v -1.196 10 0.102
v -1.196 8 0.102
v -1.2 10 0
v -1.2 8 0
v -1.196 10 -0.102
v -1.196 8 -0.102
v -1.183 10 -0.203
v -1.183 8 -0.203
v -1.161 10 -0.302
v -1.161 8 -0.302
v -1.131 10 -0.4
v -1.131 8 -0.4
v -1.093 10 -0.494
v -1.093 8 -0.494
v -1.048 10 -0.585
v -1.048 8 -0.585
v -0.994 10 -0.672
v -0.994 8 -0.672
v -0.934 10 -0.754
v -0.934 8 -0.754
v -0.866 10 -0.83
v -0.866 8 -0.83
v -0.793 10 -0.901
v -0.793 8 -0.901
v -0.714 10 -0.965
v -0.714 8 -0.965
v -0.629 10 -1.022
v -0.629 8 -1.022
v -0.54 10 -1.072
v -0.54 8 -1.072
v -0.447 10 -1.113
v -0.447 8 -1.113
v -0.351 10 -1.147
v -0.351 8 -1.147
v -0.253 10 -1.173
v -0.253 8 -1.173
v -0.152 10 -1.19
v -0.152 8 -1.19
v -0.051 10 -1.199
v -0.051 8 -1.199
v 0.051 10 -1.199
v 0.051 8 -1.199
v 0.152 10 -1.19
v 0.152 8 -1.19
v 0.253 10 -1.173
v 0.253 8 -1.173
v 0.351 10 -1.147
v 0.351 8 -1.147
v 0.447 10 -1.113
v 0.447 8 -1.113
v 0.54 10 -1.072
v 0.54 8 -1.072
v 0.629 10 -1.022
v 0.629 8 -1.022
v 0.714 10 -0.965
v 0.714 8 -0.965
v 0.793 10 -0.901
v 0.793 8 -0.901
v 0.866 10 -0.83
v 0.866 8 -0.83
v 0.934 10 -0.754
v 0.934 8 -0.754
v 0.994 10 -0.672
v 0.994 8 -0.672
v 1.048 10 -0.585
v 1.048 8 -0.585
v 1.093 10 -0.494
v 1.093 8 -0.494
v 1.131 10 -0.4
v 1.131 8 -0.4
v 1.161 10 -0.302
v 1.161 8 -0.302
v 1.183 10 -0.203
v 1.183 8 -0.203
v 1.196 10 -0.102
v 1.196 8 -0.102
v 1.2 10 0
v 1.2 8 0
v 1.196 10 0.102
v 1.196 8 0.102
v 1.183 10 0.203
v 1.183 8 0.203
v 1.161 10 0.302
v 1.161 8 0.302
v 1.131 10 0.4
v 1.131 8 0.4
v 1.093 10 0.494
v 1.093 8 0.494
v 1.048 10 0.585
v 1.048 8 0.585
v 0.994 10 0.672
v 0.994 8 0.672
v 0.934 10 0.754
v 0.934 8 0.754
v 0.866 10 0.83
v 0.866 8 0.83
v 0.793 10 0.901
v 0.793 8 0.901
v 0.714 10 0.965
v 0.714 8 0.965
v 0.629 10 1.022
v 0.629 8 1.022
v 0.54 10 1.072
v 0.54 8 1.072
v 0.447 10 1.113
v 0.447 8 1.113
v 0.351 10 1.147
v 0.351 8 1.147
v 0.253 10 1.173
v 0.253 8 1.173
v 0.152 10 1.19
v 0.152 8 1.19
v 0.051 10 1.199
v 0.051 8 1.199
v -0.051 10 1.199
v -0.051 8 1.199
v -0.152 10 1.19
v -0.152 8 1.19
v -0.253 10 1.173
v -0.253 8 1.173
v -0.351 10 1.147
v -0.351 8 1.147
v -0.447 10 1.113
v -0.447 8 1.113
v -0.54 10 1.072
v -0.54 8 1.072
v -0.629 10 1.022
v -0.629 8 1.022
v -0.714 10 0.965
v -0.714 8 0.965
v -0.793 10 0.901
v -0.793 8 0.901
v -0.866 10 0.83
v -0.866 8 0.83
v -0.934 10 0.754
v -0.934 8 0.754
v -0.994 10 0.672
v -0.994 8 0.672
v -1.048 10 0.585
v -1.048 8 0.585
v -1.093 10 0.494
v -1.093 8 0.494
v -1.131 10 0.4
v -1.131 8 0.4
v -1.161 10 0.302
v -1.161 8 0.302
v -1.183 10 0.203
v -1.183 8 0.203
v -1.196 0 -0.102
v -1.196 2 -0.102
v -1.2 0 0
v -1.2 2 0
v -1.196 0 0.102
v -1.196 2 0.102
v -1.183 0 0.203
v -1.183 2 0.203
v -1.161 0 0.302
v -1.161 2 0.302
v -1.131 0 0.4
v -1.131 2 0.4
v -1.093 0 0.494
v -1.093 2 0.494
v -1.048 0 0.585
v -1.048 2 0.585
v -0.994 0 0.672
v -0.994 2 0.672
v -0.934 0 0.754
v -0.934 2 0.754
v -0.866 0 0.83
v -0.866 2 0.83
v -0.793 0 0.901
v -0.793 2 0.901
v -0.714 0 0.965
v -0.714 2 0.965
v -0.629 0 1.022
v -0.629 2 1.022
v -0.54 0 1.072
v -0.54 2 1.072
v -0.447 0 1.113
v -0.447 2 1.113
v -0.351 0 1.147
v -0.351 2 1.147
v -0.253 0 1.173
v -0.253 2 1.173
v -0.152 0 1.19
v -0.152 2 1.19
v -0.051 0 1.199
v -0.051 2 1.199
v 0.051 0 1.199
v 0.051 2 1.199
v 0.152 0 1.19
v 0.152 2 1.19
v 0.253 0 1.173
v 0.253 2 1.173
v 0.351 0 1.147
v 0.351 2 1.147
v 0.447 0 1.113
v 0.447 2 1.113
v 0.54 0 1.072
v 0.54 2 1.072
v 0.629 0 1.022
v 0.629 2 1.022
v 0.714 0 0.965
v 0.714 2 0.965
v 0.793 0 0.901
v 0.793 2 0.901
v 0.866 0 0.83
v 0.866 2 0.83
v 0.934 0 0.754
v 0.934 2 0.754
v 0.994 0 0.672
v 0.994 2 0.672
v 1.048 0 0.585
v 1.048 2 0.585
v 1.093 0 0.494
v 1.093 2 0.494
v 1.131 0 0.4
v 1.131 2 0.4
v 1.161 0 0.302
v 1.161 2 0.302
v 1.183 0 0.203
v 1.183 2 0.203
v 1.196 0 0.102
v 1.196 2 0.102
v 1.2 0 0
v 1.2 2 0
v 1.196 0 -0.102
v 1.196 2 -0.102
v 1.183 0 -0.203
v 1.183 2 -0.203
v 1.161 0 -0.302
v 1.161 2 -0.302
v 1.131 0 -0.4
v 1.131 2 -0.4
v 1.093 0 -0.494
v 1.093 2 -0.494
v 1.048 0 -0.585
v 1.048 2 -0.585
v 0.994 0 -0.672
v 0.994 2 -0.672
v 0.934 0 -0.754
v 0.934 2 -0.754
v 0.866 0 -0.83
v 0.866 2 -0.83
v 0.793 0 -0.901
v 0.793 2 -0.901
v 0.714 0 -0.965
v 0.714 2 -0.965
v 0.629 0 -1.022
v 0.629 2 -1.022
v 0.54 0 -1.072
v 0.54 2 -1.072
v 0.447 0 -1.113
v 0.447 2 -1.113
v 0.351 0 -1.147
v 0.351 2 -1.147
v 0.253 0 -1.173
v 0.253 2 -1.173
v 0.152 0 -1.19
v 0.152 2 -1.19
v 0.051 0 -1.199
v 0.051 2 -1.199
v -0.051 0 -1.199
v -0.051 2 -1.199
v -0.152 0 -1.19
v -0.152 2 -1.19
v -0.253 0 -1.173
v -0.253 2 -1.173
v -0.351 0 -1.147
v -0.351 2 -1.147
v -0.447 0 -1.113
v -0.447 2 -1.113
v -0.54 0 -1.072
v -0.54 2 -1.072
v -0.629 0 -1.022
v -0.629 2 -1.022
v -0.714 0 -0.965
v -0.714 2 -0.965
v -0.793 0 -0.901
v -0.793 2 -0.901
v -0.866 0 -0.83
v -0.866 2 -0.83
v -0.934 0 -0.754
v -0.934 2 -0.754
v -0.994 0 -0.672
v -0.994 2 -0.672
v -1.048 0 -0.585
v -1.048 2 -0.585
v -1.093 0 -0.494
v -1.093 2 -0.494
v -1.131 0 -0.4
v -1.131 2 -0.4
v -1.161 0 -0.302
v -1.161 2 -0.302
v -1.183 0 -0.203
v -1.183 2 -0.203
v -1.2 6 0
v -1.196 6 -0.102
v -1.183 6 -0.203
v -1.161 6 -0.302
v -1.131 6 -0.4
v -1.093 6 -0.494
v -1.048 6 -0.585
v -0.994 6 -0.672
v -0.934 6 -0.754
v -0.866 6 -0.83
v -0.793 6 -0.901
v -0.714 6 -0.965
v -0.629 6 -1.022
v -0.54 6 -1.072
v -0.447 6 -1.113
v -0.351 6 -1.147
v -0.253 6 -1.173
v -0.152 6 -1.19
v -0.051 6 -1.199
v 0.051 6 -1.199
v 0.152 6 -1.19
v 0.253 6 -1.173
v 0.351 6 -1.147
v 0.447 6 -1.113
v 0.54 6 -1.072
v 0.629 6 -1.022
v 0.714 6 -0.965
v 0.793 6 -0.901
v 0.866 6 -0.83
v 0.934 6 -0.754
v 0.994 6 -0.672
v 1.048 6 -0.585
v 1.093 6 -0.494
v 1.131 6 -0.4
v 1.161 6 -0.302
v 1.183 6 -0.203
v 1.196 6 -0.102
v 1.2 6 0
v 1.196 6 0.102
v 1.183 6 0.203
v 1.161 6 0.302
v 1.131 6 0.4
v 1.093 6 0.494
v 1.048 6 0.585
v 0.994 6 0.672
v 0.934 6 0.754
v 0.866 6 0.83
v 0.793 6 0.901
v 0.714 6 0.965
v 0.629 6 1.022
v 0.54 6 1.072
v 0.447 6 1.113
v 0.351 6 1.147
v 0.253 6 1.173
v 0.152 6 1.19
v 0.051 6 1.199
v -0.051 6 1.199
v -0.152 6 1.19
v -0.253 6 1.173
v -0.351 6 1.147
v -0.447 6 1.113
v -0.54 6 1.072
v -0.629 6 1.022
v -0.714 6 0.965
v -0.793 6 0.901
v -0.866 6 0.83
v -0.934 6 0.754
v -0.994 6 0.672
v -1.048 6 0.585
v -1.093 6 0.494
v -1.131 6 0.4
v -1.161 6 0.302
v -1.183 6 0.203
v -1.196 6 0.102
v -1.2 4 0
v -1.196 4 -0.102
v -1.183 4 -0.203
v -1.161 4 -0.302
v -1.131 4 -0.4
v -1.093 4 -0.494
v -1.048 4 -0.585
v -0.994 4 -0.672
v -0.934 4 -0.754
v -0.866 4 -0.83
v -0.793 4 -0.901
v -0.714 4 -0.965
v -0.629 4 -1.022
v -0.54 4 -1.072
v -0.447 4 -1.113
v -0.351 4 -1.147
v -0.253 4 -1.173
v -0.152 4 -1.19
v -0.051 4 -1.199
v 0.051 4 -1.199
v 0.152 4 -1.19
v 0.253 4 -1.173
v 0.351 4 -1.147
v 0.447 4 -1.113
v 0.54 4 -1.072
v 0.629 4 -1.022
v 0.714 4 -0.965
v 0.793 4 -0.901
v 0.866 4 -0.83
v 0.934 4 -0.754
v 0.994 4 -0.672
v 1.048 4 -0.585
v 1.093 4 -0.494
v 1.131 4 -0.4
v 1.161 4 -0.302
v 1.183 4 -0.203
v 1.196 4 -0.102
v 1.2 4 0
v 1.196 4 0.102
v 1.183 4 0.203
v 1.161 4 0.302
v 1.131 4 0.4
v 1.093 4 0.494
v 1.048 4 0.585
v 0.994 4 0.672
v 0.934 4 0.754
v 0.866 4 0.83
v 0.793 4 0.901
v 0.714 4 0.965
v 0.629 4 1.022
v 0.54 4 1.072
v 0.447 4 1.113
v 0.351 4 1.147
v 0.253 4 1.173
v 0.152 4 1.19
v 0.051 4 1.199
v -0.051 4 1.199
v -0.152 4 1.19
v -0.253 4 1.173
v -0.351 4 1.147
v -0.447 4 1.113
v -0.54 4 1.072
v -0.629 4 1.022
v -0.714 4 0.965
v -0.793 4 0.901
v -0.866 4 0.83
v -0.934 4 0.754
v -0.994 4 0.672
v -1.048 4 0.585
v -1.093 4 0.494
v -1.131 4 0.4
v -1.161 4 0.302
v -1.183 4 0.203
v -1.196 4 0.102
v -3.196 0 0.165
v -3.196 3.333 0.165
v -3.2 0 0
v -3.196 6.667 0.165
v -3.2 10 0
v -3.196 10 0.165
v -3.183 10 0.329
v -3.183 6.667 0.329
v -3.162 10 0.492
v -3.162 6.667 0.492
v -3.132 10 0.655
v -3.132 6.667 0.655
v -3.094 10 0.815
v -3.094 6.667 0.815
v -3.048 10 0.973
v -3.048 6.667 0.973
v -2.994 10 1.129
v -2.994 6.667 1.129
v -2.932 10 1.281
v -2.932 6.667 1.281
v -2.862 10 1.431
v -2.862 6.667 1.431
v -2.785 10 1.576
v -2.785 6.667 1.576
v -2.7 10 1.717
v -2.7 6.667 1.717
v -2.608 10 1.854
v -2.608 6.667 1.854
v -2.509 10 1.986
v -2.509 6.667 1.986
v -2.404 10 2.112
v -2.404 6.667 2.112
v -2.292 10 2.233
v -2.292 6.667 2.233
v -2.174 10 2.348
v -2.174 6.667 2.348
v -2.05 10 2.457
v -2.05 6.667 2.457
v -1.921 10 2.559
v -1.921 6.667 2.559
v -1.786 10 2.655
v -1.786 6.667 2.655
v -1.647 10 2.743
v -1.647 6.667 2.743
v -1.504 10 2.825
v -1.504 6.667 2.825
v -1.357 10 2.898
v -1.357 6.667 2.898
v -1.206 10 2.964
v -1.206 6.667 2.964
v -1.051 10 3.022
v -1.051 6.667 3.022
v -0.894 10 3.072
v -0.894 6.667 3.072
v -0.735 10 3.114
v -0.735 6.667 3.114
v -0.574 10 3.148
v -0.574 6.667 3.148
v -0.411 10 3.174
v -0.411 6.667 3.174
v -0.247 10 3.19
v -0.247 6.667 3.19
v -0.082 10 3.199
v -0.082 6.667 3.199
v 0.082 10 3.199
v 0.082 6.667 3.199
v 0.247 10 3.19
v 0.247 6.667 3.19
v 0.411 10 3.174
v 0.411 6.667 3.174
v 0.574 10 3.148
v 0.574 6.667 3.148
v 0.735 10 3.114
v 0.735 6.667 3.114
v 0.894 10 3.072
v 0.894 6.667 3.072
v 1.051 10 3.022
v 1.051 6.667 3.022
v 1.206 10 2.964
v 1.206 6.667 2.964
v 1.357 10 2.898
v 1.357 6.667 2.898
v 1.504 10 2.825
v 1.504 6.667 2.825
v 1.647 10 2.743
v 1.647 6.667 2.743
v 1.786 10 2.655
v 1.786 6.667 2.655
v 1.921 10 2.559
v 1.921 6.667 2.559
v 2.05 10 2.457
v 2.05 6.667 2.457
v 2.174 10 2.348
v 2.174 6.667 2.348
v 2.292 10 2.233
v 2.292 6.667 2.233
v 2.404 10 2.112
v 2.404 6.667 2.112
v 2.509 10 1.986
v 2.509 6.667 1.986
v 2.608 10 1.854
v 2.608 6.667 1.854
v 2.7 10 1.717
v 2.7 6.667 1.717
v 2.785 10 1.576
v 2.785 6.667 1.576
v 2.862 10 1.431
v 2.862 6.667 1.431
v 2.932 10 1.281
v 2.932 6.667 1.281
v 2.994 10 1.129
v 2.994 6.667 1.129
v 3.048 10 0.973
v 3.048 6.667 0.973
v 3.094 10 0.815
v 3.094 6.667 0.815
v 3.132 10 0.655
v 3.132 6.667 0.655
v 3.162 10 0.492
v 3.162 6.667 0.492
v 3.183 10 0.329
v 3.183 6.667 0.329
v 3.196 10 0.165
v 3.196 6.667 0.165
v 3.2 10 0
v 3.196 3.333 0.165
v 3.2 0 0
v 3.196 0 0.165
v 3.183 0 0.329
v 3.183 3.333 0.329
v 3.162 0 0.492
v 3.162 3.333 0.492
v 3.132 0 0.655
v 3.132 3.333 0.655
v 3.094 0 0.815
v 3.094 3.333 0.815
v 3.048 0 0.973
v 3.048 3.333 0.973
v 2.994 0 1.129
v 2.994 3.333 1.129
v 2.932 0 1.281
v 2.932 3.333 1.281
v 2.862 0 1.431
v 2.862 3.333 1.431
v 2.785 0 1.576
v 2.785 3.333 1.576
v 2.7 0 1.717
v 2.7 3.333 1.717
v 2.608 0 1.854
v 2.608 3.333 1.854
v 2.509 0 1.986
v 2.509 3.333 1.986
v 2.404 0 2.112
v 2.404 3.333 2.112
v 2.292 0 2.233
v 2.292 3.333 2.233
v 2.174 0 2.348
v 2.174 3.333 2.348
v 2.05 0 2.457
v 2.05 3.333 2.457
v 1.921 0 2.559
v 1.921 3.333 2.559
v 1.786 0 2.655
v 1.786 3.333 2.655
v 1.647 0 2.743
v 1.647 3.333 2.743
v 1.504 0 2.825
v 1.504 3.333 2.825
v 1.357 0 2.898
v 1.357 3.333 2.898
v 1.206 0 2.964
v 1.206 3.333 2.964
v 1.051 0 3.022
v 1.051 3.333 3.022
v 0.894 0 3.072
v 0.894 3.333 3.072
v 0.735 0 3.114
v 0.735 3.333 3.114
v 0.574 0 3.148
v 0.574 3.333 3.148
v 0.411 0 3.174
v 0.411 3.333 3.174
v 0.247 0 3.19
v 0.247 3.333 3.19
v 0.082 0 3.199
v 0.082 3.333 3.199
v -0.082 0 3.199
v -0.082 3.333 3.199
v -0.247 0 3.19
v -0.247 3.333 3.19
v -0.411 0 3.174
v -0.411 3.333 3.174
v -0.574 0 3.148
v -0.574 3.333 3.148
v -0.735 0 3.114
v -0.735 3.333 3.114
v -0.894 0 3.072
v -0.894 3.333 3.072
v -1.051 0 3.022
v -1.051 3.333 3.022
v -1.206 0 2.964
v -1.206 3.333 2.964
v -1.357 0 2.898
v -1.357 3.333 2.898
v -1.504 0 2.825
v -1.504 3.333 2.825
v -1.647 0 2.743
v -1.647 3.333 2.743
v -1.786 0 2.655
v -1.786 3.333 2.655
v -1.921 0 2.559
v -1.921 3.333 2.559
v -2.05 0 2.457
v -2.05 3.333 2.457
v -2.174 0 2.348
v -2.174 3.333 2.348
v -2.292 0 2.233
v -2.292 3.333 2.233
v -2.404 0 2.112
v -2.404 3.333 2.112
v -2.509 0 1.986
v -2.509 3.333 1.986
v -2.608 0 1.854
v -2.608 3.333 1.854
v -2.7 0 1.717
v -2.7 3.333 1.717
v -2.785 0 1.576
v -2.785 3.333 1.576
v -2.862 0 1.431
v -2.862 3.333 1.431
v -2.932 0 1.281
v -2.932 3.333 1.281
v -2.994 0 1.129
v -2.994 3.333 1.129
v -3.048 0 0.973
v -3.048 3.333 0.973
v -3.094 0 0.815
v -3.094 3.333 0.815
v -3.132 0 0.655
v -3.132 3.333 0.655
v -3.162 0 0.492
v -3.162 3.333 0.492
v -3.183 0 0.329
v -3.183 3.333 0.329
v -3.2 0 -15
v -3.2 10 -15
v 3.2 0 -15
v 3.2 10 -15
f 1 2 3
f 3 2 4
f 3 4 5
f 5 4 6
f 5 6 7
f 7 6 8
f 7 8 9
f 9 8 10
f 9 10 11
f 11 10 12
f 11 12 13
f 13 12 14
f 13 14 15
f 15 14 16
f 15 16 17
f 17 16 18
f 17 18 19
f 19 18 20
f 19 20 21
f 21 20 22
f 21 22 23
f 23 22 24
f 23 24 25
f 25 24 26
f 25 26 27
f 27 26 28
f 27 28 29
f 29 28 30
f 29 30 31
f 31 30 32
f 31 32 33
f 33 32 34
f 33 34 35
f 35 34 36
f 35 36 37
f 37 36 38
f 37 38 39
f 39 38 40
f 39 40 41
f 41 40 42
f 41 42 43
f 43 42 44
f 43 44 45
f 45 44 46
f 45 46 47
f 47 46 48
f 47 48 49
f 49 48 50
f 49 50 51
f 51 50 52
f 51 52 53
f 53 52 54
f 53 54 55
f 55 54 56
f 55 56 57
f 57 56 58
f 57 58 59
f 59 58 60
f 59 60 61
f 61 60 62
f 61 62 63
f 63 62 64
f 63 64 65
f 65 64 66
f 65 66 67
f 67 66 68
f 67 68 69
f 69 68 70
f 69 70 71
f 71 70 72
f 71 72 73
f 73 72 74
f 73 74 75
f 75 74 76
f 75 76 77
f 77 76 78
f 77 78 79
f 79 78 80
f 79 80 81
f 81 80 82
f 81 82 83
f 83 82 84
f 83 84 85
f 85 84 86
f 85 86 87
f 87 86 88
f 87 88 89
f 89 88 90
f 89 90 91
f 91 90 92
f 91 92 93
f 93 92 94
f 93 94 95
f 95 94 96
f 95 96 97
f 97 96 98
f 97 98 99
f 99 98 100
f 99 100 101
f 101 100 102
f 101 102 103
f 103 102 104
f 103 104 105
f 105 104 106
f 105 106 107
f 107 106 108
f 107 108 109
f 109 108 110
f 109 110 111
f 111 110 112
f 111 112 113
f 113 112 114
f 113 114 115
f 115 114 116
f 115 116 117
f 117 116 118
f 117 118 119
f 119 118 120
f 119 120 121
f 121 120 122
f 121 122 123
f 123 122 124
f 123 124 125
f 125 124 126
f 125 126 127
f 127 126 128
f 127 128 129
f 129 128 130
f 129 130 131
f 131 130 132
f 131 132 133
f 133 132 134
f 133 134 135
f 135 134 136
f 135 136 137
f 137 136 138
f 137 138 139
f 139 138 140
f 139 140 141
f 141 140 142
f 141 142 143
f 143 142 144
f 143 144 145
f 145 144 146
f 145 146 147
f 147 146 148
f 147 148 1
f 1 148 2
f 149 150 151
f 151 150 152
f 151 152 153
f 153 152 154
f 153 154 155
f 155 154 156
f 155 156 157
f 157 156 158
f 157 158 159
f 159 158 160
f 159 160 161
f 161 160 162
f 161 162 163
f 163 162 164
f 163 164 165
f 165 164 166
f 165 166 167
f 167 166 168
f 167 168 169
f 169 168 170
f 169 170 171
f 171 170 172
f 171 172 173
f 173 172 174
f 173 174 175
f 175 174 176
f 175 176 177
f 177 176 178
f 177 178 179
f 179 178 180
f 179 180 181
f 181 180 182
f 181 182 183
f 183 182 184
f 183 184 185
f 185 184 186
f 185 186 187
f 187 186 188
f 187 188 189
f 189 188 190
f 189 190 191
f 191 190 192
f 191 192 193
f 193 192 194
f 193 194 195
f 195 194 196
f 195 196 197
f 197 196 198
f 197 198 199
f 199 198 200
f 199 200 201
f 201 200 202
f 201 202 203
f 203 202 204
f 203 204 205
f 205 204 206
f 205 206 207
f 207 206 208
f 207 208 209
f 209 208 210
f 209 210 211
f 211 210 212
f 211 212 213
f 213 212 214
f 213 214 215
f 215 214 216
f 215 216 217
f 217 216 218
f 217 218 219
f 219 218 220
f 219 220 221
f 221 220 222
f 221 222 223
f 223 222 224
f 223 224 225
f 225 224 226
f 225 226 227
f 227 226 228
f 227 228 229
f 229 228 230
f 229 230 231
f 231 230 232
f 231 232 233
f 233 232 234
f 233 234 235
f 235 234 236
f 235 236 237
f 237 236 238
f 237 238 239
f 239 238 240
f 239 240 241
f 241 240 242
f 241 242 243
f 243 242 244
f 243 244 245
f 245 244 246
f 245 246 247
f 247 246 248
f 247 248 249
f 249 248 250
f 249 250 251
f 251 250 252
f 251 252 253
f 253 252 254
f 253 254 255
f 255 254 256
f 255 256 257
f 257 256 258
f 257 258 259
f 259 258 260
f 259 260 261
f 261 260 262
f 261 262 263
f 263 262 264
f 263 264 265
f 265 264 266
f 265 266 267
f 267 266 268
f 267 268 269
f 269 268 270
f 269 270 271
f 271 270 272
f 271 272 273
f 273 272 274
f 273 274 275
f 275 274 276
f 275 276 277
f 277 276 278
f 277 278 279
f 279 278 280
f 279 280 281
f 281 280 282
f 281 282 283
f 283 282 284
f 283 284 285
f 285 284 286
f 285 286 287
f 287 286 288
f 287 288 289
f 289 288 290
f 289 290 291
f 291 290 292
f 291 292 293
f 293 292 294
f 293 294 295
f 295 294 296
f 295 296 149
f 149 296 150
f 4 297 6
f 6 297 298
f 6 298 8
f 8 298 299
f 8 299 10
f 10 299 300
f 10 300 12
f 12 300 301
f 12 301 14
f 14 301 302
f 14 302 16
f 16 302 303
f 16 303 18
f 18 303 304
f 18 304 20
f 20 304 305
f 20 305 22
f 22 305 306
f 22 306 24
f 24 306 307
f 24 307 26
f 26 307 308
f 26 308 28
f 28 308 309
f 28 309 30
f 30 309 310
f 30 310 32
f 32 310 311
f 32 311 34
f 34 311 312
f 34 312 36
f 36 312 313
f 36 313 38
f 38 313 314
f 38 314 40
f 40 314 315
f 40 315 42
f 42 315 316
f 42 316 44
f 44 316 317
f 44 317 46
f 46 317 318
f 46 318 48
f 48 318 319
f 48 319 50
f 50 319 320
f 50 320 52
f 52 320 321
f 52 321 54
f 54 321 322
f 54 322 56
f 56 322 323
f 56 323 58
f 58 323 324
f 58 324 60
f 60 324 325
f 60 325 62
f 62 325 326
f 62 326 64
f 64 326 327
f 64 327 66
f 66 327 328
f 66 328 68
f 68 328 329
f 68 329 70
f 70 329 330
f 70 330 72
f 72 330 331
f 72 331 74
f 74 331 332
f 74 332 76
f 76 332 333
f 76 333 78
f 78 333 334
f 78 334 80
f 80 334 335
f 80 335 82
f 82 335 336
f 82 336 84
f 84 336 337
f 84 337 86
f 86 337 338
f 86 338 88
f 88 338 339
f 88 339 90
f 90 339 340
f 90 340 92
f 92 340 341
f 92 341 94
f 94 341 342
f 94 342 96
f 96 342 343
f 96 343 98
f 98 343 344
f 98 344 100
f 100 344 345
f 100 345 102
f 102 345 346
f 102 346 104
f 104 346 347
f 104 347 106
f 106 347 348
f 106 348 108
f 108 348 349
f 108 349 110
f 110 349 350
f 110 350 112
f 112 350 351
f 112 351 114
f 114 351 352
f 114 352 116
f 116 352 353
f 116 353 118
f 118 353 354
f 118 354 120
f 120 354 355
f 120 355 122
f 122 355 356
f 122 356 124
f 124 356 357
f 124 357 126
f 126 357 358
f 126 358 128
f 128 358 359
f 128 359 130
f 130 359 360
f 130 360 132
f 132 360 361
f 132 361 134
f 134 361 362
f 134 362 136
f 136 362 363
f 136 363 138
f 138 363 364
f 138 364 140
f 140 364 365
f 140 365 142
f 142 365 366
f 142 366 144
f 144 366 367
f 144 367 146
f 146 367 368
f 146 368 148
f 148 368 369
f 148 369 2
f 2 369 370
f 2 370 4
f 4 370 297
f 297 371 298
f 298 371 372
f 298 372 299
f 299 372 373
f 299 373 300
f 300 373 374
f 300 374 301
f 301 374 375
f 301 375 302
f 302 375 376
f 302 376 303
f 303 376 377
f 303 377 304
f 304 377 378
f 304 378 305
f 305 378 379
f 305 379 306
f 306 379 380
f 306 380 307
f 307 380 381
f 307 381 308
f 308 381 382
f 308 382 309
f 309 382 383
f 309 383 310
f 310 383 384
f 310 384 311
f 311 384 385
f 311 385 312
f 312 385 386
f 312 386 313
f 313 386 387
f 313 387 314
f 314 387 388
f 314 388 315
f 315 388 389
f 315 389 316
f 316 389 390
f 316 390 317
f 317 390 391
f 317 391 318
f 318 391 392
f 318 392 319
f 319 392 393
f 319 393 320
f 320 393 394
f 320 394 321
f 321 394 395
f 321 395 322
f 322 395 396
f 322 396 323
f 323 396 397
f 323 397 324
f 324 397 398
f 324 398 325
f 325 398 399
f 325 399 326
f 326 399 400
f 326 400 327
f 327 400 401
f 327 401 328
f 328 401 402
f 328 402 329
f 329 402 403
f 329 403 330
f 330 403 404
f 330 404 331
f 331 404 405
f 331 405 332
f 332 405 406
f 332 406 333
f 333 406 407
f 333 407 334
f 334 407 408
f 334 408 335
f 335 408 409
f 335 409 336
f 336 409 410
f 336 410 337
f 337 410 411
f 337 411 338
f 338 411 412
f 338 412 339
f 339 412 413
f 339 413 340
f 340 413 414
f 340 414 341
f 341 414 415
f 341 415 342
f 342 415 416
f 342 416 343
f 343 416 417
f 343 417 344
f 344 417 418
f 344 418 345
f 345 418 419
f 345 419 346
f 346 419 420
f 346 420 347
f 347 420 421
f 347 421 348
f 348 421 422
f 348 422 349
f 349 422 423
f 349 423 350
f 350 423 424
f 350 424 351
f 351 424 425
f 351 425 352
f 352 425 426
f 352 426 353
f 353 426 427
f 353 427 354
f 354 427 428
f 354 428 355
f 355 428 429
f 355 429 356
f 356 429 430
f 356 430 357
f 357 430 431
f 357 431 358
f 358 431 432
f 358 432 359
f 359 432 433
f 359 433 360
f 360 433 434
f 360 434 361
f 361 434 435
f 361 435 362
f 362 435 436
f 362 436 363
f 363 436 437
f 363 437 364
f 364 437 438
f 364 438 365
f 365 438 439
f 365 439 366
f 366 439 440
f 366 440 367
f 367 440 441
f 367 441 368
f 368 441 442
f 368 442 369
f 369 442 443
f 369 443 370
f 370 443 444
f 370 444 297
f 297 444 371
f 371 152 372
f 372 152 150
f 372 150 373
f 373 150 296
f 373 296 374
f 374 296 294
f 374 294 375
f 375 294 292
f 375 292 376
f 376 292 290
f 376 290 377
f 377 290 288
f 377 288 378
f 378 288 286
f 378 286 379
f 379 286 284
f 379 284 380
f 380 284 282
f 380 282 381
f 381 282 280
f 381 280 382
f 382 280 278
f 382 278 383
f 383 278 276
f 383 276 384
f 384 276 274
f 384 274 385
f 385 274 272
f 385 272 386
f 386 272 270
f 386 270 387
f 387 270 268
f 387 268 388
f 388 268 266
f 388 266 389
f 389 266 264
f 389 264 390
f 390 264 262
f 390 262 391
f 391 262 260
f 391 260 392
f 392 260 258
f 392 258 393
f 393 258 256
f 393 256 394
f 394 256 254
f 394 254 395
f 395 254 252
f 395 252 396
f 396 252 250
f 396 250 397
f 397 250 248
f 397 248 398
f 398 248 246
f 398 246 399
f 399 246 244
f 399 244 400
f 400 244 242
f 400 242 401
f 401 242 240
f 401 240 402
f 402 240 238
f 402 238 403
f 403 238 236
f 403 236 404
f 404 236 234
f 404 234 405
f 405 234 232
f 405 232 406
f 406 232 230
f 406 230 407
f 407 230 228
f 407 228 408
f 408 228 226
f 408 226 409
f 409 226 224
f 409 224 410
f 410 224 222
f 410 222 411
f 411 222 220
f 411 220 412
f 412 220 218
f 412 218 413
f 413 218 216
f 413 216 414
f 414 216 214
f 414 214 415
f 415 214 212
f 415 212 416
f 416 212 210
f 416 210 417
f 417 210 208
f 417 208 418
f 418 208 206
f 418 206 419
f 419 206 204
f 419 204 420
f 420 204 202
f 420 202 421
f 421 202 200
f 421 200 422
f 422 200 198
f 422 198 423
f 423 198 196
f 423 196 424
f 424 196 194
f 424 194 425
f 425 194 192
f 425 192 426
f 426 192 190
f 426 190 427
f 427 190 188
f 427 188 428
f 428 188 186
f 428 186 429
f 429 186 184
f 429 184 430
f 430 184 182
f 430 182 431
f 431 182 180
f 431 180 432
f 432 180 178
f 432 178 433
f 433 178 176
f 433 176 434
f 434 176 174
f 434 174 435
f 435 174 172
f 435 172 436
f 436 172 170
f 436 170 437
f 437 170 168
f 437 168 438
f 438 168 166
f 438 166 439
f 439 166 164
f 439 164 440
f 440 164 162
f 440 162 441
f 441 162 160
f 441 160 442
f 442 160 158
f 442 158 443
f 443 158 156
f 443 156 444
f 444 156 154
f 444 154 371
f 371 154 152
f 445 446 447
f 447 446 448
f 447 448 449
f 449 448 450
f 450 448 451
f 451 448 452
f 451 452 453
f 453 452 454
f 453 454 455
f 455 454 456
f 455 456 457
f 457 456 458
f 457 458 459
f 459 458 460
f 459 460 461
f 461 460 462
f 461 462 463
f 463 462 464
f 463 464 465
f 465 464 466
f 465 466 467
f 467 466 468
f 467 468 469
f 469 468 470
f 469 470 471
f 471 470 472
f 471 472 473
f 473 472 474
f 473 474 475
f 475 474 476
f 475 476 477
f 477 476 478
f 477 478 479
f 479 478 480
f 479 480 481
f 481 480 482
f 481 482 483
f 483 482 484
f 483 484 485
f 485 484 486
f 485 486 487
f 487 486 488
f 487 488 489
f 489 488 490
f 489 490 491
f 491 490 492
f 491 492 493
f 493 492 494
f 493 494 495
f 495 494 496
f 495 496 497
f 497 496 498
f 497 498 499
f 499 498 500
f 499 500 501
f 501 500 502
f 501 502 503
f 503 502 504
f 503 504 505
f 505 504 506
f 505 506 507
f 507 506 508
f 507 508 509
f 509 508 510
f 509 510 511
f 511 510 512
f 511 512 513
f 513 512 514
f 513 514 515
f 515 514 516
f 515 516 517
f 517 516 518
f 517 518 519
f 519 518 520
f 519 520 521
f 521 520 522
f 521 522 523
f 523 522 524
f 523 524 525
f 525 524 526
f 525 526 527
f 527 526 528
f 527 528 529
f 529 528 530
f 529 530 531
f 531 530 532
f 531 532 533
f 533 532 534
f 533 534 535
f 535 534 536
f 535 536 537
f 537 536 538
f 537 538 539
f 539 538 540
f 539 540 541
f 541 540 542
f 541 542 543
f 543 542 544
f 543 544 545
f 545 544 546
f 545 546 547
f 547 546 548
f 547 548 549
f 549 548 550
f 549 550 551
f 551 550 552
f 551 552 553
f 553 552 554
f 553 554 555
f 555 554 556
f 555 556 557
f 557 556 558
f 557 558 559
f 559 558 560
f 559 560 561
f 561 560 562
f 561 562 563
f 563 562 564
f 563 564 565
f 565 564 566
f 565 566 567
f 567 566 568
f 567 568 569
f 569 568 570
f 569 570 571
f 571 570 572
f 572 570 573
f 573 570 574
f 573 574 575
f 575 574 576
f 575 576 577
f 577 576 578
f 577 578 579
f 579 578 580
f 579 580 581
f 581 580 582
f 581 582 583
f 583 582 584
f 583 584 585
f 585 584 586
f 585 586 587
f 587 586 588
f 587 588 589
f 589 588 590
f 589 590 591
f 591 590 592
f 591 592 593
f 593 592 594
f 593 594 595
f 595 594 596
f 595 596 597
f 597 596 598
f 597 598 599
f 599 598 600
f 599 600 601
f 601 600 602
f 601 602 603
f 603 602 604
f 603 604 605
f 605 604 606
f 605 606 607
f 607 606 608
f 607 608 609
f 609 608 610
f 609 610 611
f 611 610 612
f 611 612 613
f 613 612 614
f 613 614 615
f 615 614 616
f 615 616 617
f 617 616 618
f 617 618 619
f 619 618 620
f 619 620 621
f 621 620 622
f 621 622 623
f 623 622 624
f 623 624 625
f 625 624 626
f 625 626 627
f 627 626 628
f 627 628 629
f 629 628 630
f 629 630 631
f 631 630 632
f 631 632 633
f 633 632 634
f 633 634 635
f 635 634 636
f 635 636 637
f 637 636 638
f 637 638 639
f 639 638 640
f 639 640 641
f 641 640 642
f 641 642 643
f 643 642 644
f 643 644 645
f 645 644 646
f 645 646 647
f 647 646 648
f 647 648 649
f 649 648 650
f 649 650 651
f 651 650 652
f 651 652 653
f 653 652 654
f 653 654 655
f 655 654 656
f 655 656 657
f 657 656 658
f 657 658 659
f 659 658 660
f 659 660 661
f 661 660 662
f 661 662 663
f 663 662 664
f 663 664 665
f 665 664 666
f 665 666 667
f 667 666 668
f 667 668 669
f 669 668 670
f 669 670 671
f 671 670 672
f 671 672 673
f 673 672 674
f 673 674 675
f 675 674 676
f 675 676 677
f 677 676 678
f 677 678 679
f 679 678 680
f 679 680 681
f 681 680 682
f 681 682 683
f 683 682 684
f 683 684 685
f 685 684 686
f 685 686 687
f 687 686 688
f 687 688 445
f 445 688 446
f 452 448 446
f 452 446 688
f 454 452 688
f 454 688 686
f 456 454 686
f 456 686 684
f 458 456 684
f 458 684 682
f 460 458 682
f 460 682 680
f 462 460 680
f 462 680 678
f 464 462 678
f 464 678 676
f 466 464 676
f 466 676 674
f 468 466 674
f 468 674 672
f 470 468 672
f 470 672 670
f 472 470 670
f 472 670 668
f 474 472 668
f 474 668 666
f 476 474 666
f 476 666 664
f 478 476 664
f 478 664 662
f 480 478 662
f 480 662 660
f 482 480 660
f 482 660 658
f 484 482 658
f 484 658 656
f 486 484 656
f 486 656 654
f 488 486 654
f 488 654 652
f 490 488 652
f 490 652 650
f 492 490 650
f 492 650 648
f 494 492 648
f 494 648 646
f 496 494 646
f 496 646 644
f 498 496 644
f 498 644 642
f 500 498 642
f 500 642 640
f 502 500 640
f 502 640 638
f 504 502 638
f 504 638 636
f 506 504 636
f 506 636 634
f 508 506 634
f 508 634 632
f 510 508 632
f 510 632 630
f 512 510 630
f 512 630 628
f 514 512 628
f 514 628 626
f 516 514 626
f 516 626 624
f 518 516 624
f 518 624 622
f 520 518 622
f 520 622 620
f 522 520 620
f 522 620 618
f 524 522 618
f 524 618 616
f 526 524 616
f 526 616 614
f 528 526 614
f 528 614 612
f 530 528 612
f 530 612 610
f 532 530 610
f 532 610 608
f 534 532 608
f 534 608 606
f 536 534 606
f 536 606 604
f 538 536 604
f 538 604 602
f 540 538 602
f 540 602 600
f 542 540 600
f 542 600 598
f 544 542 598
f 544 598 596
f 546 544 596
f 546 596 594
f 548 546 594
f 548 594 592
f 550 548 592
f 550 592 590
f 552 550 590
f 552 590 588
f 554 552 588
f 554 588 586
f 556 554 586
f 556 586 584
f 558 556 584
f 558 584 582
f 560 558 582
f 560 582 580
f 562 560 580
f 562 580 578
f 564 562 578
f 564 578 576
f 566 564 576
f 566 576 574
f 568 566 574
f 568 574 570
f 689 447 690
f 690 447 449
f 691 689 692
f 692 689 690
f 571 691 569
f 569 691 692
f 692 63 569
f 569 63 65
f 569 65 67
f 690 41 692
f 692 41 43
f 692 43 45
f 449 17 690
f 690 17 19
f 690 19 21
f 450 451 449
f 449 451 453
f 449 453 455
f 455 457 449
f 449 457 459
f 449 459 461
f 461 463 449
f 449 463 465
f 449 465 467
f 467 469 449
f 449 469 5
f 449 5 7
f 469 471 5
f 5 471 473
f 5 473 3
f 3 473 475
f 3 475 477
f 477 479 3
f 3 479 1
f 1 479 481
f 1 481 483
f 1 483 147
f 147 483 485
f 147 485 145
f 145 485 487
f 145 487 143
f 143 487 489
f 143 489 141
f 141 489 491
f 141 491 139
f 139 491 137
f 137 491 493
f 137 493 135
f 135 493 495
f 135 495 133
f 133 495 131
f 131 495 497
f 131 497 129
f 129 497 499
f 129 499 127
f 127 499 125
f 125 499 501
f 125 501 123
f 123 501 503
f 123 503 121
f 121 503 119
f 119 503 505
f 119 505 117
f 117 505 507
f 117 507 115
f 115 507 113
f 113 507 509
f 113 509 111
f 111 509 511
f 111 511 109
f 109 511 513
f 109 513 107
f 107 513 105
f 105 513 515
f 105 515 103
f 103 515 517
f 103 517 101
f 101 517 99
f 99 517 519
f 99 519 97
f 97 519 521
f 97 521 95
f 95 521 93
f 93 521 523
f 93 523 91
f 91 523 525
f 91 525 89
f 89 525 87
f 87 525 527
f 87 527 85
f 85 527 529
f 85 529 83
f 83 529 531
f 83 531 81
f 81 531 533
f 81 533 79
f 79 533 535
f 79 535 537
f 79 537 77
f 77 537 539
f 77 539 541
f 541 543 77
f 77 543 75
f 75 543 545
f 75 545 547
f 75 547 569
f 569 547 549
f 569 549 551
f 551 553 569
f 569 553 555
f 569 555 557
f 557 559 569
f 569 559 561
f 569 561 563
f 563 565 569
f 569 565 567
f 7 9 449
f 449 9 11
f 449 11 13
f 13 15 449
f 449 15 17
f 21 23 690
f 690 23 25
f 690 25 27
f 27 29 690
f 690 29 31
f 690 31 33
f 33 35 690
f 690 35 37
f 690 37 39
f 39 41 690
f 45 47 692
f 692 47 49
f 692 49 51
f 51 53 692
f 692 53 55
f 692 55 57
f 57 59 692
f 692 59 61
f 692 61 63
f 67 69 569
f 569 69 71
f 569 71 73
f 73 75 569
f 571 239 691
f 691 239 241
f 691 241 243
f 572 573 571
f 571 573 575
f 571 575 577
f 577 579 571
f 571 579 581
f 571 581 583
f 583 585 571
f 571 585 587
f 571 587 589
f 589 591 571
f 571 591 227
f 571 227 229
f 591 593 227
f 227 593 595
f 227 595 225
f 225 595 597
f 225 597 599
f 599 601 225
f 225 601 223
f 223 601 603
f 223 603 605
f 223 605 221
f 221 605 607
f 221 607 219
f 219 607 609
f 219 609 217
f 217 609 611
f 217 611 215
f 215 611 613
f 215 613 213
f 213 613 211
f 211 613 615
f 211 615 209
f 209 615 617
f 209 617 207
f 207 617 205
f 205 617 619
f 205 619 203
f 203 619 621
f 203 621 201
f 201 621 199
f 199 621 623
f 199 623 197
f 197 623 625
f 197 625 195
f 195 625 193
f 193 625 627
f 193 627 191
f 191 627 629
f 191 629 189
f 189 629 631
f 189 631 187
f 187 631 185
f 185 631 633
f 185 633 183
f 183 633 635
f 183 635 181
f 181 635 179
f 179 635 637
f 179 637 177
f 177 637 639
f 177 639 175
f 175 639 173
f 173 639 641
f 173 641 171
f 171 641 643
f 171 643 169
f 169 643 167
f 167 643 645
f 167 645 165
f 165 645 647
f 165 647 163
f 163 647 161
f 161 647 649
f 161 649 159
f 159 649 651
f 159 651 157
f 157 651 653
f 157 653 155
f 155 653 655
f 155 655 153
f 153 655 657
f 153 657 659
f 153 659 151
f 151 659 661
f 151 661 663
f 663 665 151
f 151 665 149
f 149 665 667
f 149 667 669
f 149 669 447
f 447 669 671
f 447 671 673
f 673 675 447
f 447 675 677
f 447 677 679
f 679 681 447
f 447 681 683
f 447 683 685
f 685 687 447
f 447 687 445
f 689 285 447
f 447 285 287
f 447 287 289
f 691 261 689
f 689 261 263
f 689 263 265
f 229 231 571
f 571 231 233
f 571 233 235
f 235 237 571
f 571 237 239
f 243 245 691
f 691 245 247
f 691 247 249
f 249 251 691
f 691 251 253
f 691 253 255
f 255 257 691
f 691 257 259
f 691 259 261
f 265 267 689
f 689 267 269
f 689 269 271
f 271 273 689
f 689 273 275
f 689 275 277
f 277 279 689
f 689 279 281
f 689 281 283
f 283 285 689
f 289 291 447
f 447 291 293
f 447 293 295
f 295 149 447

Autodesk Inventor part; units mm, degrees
ref_plane "YZ Plane" through (0, 0, 0) normal (1, 0, 0) x (0, 1, 0)
ref_plane "XZ Plane" through (0, 0, 0) normal (0, 1, 0) x (-1, 0, 0)
ref_plane "XY Plane" through (0, 0, 0) normal (0, 0, 1) x (1, 0, 0)
sketch "Sketch1" plane through (0, 0, 0) normal (0, 1, 0) x (-1, 0, 0)
  circle A0 centre (0, 0) radius 1.2
  circle A1 centre (0, 0) radius 3.2
  line L0 (3.2, 0) -> (-3.2, 0) construction
  line L1 (-3.2, 0) -> (-3.2, -15)
  line L2 (-3.2, -15) -> (3.2, -15)
  line L3 (3.2, -15) -> (3.2, 0)
  point P0 (-3.2, 0)
  dimension "d0" = 2.4
  dimension "d1" = 2
  dimension "d2" = 15
extrude "Extrusion1" add sketch "Sketch1" along normal blind 10
properties part number "motor viber"
